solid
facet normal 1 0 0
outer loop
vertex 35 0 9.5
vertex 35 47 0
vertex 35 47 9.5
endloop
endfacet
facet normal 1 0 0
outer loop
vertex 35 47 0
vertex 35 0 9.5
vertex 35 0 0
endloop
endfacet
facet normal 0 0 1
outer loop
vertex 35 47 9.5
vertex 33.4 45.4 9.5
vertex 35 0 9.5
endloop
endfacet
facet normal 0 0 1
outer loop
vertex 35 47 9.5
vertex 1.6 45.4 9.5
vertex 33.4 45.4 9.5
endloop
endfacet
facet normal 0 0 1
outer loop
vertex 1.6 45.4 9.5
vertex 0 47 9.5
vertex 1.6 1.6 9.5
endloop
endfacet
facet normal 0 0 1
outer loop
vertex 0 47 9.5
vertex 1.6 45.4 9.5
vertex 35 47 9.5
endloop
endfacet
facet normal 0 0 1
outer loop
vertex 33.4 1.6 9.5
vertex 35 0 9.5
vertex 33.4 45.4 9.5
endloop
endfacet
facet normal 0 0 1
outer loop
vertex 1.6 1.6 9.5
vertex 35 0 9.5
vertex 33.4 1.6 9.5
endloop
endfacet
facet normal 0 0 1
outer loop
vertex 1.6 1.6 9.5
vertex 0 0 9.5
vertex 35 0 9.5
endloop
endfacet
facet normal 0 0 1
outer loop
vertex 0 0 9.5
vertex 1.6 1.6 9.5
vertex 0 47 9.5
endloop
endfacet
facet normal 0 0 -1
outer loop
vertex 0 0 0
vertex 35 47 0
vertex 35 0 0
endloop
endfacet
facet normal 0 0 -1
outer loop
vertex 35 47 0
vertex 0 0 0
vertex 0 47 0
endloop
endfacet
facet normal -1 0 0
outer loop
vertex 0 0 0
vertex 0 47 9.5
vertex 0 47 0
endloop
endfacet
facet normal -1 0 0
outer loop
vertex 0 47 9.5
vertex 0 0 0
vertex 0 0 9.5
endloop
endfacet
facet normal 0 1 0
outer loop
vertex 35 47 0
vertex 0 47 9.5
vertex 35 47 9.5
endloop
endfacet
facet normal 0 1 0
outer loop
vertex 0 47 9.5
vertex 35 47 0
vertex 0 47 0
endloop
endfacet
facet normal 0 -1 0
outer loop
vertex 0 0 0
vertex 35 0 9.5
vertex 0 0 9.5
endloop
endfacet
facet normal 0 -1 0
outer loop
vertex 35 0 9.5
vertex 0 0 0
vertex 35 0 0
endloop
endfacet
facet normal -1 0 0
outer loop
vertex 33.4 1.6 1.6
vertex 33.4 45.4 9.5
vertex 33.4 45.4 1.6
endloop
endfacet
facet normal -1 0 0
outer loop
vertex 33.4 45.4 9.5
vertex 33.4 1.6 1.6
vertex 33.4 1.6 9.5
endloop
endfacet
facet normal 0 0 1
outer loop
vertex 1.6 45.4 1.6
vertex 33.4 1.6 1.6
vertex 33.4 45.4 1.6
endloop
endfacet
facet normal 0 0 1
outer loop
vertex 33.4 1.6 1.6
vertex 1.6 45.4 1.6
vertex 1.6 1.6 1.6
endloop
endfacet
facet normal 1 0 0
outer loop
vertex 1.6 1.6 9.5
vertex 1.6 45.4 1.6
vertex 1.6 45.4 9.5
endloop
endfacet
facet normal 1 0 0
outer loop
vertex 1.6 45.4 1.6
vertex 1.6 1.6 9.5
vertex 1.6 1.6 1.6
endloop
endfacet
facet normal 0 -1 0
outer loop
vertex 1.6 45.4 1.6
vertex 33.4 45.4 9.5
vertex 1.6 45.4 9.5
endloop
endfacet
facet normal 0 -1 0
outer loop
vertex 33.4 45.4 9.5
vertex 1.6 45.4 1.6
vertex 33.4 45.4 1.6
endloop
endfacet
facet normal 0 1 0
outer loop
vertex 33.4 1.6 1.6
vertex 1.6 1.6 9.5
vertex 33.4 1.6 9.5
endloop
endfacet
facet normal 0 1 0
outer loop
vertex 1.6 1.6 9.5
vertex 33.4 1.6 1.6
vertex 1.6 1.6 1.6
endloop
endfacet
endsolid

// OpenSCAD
// CC BY-SA 4.0, FHNW (University of Applied Sciences and Arts Northwestern Switzerland)

module plug(d) {
    difference() {
        cube([35, 47, 9.5]);
        translate([d, d, d]) cube([35 - 2 * d, 47 - 2 * d, 9.5 - d]);
    }
}

plug(1.6);
